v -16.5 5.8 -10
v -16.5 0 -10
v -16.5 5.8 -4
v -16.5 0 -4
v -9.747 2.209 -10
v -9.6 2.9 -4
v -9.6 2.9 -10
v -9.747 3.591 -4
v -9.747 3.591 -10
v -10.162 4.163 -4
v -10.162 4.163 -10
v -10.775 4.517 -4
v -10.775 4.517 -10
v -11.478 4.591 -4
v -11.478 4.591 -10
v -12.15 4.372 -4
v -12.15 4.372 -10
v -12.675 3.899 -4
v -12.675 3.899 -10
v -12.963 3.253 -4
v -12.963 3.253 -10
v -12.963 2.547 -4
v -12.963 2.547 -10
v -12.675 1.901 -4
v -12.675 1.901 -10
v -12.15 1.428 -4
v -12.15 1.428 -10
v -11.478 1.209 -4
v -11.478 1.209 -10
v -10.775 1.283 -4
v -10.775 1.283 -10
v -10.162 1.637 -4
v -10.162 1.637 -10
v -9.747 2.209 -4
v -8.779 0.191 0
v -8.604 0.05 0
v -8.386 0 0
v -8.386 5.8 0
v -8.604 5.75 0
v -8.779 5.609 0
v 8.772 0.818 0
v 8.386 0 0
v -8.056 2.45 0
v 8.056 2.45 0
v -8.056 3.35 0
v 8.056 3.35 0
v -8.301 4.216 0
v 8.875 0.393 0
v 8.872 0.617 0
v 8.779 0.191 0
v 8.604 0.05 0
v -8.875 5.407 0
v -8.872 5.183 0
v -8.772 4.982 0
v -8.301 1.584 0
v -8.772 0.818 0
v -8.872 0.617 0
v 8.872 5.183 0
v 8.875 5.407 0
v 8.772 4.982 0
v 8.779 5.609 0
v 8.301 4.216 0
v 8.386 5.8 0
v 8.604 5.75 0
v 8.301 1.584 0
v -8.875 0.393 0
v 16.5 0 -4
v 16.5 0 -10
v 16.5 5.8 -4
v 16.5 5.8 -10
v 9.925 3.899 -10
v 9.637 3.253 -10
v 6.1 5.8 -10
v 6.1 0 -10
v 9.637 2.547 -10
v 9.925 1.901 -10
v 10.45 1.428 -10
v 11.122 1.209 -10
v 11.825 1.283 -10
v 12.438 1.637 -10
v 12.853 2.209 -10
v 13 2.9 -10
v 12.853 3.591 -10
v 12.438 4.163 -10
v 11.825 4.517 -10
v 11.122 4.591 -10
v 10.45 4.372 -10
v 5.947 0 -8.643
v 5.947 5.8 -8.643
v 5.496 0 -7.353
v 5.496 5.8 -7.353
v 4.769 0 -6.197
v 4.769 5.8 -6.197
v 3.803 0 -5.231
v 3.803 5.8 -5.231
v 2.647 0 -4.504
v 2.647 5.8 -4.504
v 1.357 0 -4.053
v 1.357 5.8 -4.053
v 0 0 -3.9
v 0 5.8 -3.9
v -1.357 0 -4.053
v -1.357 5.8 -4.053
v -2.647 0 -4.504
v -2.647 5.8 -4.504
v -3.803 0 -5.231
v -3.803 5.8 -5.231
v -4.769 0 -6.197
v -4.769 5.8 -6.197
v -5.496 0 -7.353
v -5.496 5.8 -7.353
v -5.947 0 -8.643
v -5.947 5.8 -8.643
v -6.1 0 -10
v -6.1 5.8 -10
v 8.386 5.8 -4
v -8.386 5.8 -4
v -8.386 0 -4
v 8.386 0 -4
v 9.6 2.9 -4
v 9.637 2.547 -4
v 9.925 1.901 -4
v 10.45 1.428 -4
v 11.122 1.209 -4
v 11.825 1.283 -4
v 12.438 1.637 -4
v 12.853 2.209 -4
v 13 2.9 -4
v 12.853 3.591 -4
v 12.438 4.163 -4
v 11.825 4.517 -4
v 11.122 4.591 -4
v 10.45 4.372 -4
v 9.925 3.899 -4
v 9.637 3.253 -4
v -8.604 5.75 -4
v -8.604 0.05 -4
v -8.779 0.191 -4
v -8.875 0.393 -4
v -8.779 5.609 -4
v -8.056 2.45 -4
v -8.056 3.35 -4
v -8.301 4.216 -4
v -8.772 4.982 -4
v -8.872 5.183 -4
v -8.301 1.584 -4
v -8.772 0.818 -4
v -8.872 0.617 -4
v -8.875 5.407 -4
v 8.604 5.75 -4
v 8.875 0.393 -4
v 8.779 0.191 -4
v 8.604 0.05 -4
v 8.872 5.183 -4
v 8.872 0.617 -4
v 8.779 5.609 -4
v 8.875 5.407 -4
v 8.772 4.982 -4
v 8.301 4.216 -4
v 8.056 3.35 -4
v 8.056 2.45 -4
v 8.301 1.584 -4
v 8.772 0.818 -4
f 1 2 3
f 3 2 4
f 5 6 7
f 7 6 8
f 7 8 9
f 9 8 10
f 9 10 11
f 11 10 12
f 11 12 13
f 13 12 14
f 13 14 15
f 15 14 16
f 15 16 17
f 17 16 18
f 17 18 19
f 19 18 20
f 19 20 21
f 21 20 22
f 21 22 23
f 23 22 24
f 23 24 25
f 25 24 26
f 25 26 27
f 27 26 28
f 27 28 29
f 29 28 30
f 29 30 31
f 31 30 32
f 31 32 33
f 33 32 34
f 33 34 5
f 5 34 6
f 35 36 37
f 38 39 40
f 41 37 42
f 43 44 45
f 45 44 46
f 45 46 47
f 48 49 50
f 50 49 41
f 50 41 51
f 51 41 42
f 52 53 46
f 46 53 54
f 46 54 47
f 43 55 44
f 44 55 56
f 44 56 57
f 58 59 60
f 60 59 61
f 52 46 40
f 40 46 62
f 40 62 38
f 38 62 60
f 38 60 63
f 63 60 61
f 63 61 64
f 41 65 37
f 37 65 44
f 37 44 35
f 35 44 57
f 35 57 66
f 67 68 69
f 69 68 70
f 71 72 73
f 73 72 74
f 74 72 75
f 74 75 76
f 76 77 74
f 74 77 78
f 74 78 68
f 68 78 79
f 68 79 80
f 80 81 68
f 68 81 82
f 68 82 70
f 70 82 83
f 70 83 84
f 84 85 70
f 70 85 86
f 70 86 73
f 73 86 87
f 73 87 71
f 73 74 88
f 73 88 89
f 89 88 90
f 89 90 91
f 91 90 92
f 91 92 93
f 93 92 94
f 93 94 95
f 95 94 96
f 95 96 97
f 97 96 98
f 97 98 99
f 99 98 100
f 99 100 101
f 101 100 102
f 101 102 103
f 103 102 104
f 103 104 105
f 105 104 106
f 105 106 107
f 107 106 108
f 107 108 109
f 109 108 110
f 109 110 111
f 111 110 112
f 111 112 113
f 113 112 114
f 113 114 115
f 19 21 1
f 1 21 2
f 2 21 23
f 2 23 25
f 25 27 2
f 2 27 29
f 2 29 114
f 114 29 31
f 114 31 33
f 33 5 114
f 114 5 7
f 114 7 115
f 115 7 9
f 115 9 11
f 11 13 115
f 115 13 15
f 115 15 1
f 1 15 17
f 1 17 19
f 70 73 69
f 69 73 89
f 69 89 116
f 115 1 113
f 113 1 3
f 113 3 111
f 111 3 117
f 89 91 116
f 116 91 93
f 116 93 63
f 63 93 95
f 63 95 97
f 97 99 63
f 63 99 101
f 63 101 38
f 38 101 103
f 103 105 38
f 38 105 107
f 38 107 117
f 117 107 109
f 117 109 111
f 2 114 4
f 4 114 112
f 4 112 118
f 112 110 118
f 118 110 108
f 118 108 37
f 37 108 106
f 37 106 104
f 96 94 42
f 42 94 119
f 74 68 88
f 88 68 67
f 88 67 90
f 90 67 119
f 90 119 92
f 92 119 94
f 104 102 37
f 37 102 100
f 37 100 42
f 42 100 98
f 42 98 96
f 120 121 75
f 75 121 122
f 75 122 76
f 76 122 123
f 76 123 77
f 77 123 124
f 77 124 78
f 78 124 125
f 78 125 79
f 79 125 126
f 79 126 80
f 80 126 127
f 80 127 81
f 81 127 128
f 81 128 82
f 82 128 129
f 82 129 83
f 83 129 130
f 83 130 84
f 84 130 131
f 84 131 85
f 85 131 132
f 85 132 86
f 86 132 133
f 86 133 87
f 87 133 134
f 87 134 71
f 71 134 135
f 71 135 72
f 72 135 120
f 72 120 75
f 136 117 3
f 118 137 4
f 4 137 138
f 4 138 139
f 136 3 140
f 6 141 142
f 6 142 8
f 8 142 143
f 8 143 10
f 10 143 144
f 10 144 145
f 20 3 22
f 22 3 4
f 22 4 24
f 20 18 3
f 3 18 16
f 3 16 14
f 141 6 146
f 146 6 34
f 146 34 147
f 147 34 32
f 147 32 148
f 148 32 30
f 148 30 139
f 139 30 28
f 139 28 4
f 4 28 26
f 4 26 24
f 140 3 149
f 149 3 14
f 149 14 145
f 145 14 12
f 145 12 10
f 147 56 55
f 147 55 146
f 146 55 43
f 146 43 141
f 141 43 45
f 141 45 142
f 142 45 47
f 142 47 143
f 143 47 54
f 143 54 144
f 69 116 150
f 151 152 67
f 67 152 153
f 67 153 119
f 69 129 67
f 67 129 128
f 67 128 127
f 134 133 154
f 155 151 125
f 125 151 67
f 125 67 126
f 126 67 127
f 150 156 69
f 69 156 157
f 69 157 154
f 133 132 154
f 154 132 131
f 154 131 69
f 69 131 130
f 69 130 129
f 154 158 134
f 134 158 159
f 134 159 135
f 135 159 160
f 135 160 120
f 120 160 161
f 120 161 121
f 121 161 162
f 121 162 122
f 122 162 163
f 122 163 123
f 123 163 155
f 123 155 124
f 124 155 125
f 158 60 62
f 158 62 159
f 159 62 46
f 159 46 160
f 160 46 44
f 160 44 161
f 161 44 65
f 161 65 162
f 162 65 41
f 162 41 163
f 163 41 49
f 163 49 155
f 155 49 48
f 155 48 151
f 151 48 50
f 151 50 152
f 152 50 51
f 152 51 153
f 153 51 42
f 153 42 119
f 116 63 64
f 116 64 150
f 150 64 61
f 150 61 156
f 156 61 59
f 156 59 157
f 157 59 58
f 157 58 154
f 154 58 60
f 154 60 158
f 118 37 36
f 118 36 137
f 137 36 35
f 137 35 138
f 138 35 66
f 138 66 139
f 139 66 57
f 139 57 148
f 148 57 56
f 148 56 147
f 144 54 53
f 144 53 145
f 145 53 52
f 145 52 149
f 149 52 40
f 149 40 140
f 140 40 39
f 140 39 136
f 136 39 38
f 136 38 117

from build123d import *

# Parameters (mm, degrees)
BOSS_EXTRUDE1_DEPTH  = 5.8
M3_CLEARANCE_HOLE1_D = 3.4
CUT_EXTRUDE1_DEPTH   = 4
FILLET1_R            = 0.5


with BuildPart() as part:
    # Sketch1 → Boss-Extrude1 (new body)
    with BuildSketch(Plane(origin=(0, 0, 0), x_dir=(1, 0, 0), z_dir=(0, 1, 0))):
        with BuildLine():
            Line((-16.5, 0), (16.5, 0))
            Line((16.5, 0), (16.5, 10))
            Line((16.5, 10), (6.1, 10))
            ThreePointArc((6.1, 10), (0, 3.9), (-6.1, 10))
            Line((-6.1, 10), (-16.5, 10))
            Line((-16.5, 10), (-16.5, 0))
        make_face()
    extrude(amount=BOSS_EXTRUDE1_DEPTH)

    # M3 Clearance Hole1 (through all)
    with Locations(Plane.XY):
        with Locations((-11.3, 2.9), (11.3, 2.9)):
            Hole(M3_CLEARANCE_HOLE1_D / 2)

    # Sketch5 → Cut-Extrude1 (cut)
    with BuildSketch(Plane.XY):
        with BuildLine():
            Line((-9.778282221, 5.8), (-16.5, 5.8))
            Line((-16.5, 5.8), (-16.5, 0))
            Line((-16.5, 0), (-9.778282221, 0))
            ThreePointArc((-9.778282221, 0), (-8.025, 2.9), (-9.778282221, 5.8))
        make_face()
        with BuildLine():
            Line((16.5, 0), (9.778282221, 0))
            ThreePointArc((9.778282221, 0), (8.025, 2.9), (9.778282221, 5.8))
            Line((9.778282221, 5.8), (16.5, 5.8))
            Line((16.5, 5.8), (16.5, 0))
        make_face()
    extrude(amount=-CUT_EXTRUDE1_DEPTH, mode=Mode.SUBTRACT)

    # Fillet1
    fillet1_edges = [part.edges().sort_by_distance(p)[0] for p in [
        (-9.778282221, 5.8, -2),
        (-9.778282221, 0, -2),
        (9.778282221, 0, -2),
        (9.778282221, 5.8, -2),
    ]]
    fillet(fillet1_edges, radius=FILLET1_R)


solid = part.part
